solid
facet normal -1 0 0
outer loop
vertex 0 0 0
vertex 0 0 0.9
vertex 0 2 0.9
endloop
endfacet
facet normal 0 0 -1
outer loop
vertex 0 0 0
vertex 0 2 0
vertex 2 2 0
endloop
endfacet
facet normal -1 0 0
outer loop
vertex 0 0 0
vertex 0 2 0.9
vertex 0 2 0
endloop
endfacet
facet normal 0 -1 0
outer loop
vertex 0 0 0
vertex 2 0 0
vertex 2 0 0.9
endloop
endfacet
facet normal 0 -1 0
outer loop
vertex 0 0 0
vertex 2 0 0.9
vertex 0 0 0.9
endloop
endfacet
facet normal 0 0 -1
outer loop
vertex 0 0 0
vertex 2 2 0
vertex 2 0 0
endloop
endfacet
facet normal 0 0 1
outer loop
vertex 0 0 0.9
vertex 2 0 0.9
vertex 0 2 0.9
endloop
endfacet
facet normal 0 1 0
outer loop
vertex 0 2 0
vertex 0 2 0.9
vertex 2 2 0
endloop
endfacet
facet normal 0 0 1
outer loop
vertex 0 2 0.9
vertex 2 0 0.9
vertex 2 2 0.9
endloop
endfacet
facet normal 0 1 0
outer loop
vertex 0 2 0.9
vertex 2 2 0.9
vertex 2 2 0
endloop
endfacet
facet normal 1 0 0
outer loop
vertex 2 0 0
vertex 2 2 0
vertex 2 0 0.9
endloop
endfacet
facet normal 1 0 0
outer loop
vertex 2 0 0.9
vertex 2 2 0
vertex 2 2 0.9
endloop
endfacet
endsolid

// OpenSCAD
/* Warning, this is a very basic generator with a lot of approximation 
input data : [VQFN, MRA, 2x2x0.9mm, 10, , C, C04-01208C]
generated by com.zoubworld.electronics.cad.model3d.Basic
Date : Sun Feb 15 10:50:49 CET 2026
*/

//body
color("black")
translate([0,0,0])
cube([2.0,2.0,0.9], center=false);
